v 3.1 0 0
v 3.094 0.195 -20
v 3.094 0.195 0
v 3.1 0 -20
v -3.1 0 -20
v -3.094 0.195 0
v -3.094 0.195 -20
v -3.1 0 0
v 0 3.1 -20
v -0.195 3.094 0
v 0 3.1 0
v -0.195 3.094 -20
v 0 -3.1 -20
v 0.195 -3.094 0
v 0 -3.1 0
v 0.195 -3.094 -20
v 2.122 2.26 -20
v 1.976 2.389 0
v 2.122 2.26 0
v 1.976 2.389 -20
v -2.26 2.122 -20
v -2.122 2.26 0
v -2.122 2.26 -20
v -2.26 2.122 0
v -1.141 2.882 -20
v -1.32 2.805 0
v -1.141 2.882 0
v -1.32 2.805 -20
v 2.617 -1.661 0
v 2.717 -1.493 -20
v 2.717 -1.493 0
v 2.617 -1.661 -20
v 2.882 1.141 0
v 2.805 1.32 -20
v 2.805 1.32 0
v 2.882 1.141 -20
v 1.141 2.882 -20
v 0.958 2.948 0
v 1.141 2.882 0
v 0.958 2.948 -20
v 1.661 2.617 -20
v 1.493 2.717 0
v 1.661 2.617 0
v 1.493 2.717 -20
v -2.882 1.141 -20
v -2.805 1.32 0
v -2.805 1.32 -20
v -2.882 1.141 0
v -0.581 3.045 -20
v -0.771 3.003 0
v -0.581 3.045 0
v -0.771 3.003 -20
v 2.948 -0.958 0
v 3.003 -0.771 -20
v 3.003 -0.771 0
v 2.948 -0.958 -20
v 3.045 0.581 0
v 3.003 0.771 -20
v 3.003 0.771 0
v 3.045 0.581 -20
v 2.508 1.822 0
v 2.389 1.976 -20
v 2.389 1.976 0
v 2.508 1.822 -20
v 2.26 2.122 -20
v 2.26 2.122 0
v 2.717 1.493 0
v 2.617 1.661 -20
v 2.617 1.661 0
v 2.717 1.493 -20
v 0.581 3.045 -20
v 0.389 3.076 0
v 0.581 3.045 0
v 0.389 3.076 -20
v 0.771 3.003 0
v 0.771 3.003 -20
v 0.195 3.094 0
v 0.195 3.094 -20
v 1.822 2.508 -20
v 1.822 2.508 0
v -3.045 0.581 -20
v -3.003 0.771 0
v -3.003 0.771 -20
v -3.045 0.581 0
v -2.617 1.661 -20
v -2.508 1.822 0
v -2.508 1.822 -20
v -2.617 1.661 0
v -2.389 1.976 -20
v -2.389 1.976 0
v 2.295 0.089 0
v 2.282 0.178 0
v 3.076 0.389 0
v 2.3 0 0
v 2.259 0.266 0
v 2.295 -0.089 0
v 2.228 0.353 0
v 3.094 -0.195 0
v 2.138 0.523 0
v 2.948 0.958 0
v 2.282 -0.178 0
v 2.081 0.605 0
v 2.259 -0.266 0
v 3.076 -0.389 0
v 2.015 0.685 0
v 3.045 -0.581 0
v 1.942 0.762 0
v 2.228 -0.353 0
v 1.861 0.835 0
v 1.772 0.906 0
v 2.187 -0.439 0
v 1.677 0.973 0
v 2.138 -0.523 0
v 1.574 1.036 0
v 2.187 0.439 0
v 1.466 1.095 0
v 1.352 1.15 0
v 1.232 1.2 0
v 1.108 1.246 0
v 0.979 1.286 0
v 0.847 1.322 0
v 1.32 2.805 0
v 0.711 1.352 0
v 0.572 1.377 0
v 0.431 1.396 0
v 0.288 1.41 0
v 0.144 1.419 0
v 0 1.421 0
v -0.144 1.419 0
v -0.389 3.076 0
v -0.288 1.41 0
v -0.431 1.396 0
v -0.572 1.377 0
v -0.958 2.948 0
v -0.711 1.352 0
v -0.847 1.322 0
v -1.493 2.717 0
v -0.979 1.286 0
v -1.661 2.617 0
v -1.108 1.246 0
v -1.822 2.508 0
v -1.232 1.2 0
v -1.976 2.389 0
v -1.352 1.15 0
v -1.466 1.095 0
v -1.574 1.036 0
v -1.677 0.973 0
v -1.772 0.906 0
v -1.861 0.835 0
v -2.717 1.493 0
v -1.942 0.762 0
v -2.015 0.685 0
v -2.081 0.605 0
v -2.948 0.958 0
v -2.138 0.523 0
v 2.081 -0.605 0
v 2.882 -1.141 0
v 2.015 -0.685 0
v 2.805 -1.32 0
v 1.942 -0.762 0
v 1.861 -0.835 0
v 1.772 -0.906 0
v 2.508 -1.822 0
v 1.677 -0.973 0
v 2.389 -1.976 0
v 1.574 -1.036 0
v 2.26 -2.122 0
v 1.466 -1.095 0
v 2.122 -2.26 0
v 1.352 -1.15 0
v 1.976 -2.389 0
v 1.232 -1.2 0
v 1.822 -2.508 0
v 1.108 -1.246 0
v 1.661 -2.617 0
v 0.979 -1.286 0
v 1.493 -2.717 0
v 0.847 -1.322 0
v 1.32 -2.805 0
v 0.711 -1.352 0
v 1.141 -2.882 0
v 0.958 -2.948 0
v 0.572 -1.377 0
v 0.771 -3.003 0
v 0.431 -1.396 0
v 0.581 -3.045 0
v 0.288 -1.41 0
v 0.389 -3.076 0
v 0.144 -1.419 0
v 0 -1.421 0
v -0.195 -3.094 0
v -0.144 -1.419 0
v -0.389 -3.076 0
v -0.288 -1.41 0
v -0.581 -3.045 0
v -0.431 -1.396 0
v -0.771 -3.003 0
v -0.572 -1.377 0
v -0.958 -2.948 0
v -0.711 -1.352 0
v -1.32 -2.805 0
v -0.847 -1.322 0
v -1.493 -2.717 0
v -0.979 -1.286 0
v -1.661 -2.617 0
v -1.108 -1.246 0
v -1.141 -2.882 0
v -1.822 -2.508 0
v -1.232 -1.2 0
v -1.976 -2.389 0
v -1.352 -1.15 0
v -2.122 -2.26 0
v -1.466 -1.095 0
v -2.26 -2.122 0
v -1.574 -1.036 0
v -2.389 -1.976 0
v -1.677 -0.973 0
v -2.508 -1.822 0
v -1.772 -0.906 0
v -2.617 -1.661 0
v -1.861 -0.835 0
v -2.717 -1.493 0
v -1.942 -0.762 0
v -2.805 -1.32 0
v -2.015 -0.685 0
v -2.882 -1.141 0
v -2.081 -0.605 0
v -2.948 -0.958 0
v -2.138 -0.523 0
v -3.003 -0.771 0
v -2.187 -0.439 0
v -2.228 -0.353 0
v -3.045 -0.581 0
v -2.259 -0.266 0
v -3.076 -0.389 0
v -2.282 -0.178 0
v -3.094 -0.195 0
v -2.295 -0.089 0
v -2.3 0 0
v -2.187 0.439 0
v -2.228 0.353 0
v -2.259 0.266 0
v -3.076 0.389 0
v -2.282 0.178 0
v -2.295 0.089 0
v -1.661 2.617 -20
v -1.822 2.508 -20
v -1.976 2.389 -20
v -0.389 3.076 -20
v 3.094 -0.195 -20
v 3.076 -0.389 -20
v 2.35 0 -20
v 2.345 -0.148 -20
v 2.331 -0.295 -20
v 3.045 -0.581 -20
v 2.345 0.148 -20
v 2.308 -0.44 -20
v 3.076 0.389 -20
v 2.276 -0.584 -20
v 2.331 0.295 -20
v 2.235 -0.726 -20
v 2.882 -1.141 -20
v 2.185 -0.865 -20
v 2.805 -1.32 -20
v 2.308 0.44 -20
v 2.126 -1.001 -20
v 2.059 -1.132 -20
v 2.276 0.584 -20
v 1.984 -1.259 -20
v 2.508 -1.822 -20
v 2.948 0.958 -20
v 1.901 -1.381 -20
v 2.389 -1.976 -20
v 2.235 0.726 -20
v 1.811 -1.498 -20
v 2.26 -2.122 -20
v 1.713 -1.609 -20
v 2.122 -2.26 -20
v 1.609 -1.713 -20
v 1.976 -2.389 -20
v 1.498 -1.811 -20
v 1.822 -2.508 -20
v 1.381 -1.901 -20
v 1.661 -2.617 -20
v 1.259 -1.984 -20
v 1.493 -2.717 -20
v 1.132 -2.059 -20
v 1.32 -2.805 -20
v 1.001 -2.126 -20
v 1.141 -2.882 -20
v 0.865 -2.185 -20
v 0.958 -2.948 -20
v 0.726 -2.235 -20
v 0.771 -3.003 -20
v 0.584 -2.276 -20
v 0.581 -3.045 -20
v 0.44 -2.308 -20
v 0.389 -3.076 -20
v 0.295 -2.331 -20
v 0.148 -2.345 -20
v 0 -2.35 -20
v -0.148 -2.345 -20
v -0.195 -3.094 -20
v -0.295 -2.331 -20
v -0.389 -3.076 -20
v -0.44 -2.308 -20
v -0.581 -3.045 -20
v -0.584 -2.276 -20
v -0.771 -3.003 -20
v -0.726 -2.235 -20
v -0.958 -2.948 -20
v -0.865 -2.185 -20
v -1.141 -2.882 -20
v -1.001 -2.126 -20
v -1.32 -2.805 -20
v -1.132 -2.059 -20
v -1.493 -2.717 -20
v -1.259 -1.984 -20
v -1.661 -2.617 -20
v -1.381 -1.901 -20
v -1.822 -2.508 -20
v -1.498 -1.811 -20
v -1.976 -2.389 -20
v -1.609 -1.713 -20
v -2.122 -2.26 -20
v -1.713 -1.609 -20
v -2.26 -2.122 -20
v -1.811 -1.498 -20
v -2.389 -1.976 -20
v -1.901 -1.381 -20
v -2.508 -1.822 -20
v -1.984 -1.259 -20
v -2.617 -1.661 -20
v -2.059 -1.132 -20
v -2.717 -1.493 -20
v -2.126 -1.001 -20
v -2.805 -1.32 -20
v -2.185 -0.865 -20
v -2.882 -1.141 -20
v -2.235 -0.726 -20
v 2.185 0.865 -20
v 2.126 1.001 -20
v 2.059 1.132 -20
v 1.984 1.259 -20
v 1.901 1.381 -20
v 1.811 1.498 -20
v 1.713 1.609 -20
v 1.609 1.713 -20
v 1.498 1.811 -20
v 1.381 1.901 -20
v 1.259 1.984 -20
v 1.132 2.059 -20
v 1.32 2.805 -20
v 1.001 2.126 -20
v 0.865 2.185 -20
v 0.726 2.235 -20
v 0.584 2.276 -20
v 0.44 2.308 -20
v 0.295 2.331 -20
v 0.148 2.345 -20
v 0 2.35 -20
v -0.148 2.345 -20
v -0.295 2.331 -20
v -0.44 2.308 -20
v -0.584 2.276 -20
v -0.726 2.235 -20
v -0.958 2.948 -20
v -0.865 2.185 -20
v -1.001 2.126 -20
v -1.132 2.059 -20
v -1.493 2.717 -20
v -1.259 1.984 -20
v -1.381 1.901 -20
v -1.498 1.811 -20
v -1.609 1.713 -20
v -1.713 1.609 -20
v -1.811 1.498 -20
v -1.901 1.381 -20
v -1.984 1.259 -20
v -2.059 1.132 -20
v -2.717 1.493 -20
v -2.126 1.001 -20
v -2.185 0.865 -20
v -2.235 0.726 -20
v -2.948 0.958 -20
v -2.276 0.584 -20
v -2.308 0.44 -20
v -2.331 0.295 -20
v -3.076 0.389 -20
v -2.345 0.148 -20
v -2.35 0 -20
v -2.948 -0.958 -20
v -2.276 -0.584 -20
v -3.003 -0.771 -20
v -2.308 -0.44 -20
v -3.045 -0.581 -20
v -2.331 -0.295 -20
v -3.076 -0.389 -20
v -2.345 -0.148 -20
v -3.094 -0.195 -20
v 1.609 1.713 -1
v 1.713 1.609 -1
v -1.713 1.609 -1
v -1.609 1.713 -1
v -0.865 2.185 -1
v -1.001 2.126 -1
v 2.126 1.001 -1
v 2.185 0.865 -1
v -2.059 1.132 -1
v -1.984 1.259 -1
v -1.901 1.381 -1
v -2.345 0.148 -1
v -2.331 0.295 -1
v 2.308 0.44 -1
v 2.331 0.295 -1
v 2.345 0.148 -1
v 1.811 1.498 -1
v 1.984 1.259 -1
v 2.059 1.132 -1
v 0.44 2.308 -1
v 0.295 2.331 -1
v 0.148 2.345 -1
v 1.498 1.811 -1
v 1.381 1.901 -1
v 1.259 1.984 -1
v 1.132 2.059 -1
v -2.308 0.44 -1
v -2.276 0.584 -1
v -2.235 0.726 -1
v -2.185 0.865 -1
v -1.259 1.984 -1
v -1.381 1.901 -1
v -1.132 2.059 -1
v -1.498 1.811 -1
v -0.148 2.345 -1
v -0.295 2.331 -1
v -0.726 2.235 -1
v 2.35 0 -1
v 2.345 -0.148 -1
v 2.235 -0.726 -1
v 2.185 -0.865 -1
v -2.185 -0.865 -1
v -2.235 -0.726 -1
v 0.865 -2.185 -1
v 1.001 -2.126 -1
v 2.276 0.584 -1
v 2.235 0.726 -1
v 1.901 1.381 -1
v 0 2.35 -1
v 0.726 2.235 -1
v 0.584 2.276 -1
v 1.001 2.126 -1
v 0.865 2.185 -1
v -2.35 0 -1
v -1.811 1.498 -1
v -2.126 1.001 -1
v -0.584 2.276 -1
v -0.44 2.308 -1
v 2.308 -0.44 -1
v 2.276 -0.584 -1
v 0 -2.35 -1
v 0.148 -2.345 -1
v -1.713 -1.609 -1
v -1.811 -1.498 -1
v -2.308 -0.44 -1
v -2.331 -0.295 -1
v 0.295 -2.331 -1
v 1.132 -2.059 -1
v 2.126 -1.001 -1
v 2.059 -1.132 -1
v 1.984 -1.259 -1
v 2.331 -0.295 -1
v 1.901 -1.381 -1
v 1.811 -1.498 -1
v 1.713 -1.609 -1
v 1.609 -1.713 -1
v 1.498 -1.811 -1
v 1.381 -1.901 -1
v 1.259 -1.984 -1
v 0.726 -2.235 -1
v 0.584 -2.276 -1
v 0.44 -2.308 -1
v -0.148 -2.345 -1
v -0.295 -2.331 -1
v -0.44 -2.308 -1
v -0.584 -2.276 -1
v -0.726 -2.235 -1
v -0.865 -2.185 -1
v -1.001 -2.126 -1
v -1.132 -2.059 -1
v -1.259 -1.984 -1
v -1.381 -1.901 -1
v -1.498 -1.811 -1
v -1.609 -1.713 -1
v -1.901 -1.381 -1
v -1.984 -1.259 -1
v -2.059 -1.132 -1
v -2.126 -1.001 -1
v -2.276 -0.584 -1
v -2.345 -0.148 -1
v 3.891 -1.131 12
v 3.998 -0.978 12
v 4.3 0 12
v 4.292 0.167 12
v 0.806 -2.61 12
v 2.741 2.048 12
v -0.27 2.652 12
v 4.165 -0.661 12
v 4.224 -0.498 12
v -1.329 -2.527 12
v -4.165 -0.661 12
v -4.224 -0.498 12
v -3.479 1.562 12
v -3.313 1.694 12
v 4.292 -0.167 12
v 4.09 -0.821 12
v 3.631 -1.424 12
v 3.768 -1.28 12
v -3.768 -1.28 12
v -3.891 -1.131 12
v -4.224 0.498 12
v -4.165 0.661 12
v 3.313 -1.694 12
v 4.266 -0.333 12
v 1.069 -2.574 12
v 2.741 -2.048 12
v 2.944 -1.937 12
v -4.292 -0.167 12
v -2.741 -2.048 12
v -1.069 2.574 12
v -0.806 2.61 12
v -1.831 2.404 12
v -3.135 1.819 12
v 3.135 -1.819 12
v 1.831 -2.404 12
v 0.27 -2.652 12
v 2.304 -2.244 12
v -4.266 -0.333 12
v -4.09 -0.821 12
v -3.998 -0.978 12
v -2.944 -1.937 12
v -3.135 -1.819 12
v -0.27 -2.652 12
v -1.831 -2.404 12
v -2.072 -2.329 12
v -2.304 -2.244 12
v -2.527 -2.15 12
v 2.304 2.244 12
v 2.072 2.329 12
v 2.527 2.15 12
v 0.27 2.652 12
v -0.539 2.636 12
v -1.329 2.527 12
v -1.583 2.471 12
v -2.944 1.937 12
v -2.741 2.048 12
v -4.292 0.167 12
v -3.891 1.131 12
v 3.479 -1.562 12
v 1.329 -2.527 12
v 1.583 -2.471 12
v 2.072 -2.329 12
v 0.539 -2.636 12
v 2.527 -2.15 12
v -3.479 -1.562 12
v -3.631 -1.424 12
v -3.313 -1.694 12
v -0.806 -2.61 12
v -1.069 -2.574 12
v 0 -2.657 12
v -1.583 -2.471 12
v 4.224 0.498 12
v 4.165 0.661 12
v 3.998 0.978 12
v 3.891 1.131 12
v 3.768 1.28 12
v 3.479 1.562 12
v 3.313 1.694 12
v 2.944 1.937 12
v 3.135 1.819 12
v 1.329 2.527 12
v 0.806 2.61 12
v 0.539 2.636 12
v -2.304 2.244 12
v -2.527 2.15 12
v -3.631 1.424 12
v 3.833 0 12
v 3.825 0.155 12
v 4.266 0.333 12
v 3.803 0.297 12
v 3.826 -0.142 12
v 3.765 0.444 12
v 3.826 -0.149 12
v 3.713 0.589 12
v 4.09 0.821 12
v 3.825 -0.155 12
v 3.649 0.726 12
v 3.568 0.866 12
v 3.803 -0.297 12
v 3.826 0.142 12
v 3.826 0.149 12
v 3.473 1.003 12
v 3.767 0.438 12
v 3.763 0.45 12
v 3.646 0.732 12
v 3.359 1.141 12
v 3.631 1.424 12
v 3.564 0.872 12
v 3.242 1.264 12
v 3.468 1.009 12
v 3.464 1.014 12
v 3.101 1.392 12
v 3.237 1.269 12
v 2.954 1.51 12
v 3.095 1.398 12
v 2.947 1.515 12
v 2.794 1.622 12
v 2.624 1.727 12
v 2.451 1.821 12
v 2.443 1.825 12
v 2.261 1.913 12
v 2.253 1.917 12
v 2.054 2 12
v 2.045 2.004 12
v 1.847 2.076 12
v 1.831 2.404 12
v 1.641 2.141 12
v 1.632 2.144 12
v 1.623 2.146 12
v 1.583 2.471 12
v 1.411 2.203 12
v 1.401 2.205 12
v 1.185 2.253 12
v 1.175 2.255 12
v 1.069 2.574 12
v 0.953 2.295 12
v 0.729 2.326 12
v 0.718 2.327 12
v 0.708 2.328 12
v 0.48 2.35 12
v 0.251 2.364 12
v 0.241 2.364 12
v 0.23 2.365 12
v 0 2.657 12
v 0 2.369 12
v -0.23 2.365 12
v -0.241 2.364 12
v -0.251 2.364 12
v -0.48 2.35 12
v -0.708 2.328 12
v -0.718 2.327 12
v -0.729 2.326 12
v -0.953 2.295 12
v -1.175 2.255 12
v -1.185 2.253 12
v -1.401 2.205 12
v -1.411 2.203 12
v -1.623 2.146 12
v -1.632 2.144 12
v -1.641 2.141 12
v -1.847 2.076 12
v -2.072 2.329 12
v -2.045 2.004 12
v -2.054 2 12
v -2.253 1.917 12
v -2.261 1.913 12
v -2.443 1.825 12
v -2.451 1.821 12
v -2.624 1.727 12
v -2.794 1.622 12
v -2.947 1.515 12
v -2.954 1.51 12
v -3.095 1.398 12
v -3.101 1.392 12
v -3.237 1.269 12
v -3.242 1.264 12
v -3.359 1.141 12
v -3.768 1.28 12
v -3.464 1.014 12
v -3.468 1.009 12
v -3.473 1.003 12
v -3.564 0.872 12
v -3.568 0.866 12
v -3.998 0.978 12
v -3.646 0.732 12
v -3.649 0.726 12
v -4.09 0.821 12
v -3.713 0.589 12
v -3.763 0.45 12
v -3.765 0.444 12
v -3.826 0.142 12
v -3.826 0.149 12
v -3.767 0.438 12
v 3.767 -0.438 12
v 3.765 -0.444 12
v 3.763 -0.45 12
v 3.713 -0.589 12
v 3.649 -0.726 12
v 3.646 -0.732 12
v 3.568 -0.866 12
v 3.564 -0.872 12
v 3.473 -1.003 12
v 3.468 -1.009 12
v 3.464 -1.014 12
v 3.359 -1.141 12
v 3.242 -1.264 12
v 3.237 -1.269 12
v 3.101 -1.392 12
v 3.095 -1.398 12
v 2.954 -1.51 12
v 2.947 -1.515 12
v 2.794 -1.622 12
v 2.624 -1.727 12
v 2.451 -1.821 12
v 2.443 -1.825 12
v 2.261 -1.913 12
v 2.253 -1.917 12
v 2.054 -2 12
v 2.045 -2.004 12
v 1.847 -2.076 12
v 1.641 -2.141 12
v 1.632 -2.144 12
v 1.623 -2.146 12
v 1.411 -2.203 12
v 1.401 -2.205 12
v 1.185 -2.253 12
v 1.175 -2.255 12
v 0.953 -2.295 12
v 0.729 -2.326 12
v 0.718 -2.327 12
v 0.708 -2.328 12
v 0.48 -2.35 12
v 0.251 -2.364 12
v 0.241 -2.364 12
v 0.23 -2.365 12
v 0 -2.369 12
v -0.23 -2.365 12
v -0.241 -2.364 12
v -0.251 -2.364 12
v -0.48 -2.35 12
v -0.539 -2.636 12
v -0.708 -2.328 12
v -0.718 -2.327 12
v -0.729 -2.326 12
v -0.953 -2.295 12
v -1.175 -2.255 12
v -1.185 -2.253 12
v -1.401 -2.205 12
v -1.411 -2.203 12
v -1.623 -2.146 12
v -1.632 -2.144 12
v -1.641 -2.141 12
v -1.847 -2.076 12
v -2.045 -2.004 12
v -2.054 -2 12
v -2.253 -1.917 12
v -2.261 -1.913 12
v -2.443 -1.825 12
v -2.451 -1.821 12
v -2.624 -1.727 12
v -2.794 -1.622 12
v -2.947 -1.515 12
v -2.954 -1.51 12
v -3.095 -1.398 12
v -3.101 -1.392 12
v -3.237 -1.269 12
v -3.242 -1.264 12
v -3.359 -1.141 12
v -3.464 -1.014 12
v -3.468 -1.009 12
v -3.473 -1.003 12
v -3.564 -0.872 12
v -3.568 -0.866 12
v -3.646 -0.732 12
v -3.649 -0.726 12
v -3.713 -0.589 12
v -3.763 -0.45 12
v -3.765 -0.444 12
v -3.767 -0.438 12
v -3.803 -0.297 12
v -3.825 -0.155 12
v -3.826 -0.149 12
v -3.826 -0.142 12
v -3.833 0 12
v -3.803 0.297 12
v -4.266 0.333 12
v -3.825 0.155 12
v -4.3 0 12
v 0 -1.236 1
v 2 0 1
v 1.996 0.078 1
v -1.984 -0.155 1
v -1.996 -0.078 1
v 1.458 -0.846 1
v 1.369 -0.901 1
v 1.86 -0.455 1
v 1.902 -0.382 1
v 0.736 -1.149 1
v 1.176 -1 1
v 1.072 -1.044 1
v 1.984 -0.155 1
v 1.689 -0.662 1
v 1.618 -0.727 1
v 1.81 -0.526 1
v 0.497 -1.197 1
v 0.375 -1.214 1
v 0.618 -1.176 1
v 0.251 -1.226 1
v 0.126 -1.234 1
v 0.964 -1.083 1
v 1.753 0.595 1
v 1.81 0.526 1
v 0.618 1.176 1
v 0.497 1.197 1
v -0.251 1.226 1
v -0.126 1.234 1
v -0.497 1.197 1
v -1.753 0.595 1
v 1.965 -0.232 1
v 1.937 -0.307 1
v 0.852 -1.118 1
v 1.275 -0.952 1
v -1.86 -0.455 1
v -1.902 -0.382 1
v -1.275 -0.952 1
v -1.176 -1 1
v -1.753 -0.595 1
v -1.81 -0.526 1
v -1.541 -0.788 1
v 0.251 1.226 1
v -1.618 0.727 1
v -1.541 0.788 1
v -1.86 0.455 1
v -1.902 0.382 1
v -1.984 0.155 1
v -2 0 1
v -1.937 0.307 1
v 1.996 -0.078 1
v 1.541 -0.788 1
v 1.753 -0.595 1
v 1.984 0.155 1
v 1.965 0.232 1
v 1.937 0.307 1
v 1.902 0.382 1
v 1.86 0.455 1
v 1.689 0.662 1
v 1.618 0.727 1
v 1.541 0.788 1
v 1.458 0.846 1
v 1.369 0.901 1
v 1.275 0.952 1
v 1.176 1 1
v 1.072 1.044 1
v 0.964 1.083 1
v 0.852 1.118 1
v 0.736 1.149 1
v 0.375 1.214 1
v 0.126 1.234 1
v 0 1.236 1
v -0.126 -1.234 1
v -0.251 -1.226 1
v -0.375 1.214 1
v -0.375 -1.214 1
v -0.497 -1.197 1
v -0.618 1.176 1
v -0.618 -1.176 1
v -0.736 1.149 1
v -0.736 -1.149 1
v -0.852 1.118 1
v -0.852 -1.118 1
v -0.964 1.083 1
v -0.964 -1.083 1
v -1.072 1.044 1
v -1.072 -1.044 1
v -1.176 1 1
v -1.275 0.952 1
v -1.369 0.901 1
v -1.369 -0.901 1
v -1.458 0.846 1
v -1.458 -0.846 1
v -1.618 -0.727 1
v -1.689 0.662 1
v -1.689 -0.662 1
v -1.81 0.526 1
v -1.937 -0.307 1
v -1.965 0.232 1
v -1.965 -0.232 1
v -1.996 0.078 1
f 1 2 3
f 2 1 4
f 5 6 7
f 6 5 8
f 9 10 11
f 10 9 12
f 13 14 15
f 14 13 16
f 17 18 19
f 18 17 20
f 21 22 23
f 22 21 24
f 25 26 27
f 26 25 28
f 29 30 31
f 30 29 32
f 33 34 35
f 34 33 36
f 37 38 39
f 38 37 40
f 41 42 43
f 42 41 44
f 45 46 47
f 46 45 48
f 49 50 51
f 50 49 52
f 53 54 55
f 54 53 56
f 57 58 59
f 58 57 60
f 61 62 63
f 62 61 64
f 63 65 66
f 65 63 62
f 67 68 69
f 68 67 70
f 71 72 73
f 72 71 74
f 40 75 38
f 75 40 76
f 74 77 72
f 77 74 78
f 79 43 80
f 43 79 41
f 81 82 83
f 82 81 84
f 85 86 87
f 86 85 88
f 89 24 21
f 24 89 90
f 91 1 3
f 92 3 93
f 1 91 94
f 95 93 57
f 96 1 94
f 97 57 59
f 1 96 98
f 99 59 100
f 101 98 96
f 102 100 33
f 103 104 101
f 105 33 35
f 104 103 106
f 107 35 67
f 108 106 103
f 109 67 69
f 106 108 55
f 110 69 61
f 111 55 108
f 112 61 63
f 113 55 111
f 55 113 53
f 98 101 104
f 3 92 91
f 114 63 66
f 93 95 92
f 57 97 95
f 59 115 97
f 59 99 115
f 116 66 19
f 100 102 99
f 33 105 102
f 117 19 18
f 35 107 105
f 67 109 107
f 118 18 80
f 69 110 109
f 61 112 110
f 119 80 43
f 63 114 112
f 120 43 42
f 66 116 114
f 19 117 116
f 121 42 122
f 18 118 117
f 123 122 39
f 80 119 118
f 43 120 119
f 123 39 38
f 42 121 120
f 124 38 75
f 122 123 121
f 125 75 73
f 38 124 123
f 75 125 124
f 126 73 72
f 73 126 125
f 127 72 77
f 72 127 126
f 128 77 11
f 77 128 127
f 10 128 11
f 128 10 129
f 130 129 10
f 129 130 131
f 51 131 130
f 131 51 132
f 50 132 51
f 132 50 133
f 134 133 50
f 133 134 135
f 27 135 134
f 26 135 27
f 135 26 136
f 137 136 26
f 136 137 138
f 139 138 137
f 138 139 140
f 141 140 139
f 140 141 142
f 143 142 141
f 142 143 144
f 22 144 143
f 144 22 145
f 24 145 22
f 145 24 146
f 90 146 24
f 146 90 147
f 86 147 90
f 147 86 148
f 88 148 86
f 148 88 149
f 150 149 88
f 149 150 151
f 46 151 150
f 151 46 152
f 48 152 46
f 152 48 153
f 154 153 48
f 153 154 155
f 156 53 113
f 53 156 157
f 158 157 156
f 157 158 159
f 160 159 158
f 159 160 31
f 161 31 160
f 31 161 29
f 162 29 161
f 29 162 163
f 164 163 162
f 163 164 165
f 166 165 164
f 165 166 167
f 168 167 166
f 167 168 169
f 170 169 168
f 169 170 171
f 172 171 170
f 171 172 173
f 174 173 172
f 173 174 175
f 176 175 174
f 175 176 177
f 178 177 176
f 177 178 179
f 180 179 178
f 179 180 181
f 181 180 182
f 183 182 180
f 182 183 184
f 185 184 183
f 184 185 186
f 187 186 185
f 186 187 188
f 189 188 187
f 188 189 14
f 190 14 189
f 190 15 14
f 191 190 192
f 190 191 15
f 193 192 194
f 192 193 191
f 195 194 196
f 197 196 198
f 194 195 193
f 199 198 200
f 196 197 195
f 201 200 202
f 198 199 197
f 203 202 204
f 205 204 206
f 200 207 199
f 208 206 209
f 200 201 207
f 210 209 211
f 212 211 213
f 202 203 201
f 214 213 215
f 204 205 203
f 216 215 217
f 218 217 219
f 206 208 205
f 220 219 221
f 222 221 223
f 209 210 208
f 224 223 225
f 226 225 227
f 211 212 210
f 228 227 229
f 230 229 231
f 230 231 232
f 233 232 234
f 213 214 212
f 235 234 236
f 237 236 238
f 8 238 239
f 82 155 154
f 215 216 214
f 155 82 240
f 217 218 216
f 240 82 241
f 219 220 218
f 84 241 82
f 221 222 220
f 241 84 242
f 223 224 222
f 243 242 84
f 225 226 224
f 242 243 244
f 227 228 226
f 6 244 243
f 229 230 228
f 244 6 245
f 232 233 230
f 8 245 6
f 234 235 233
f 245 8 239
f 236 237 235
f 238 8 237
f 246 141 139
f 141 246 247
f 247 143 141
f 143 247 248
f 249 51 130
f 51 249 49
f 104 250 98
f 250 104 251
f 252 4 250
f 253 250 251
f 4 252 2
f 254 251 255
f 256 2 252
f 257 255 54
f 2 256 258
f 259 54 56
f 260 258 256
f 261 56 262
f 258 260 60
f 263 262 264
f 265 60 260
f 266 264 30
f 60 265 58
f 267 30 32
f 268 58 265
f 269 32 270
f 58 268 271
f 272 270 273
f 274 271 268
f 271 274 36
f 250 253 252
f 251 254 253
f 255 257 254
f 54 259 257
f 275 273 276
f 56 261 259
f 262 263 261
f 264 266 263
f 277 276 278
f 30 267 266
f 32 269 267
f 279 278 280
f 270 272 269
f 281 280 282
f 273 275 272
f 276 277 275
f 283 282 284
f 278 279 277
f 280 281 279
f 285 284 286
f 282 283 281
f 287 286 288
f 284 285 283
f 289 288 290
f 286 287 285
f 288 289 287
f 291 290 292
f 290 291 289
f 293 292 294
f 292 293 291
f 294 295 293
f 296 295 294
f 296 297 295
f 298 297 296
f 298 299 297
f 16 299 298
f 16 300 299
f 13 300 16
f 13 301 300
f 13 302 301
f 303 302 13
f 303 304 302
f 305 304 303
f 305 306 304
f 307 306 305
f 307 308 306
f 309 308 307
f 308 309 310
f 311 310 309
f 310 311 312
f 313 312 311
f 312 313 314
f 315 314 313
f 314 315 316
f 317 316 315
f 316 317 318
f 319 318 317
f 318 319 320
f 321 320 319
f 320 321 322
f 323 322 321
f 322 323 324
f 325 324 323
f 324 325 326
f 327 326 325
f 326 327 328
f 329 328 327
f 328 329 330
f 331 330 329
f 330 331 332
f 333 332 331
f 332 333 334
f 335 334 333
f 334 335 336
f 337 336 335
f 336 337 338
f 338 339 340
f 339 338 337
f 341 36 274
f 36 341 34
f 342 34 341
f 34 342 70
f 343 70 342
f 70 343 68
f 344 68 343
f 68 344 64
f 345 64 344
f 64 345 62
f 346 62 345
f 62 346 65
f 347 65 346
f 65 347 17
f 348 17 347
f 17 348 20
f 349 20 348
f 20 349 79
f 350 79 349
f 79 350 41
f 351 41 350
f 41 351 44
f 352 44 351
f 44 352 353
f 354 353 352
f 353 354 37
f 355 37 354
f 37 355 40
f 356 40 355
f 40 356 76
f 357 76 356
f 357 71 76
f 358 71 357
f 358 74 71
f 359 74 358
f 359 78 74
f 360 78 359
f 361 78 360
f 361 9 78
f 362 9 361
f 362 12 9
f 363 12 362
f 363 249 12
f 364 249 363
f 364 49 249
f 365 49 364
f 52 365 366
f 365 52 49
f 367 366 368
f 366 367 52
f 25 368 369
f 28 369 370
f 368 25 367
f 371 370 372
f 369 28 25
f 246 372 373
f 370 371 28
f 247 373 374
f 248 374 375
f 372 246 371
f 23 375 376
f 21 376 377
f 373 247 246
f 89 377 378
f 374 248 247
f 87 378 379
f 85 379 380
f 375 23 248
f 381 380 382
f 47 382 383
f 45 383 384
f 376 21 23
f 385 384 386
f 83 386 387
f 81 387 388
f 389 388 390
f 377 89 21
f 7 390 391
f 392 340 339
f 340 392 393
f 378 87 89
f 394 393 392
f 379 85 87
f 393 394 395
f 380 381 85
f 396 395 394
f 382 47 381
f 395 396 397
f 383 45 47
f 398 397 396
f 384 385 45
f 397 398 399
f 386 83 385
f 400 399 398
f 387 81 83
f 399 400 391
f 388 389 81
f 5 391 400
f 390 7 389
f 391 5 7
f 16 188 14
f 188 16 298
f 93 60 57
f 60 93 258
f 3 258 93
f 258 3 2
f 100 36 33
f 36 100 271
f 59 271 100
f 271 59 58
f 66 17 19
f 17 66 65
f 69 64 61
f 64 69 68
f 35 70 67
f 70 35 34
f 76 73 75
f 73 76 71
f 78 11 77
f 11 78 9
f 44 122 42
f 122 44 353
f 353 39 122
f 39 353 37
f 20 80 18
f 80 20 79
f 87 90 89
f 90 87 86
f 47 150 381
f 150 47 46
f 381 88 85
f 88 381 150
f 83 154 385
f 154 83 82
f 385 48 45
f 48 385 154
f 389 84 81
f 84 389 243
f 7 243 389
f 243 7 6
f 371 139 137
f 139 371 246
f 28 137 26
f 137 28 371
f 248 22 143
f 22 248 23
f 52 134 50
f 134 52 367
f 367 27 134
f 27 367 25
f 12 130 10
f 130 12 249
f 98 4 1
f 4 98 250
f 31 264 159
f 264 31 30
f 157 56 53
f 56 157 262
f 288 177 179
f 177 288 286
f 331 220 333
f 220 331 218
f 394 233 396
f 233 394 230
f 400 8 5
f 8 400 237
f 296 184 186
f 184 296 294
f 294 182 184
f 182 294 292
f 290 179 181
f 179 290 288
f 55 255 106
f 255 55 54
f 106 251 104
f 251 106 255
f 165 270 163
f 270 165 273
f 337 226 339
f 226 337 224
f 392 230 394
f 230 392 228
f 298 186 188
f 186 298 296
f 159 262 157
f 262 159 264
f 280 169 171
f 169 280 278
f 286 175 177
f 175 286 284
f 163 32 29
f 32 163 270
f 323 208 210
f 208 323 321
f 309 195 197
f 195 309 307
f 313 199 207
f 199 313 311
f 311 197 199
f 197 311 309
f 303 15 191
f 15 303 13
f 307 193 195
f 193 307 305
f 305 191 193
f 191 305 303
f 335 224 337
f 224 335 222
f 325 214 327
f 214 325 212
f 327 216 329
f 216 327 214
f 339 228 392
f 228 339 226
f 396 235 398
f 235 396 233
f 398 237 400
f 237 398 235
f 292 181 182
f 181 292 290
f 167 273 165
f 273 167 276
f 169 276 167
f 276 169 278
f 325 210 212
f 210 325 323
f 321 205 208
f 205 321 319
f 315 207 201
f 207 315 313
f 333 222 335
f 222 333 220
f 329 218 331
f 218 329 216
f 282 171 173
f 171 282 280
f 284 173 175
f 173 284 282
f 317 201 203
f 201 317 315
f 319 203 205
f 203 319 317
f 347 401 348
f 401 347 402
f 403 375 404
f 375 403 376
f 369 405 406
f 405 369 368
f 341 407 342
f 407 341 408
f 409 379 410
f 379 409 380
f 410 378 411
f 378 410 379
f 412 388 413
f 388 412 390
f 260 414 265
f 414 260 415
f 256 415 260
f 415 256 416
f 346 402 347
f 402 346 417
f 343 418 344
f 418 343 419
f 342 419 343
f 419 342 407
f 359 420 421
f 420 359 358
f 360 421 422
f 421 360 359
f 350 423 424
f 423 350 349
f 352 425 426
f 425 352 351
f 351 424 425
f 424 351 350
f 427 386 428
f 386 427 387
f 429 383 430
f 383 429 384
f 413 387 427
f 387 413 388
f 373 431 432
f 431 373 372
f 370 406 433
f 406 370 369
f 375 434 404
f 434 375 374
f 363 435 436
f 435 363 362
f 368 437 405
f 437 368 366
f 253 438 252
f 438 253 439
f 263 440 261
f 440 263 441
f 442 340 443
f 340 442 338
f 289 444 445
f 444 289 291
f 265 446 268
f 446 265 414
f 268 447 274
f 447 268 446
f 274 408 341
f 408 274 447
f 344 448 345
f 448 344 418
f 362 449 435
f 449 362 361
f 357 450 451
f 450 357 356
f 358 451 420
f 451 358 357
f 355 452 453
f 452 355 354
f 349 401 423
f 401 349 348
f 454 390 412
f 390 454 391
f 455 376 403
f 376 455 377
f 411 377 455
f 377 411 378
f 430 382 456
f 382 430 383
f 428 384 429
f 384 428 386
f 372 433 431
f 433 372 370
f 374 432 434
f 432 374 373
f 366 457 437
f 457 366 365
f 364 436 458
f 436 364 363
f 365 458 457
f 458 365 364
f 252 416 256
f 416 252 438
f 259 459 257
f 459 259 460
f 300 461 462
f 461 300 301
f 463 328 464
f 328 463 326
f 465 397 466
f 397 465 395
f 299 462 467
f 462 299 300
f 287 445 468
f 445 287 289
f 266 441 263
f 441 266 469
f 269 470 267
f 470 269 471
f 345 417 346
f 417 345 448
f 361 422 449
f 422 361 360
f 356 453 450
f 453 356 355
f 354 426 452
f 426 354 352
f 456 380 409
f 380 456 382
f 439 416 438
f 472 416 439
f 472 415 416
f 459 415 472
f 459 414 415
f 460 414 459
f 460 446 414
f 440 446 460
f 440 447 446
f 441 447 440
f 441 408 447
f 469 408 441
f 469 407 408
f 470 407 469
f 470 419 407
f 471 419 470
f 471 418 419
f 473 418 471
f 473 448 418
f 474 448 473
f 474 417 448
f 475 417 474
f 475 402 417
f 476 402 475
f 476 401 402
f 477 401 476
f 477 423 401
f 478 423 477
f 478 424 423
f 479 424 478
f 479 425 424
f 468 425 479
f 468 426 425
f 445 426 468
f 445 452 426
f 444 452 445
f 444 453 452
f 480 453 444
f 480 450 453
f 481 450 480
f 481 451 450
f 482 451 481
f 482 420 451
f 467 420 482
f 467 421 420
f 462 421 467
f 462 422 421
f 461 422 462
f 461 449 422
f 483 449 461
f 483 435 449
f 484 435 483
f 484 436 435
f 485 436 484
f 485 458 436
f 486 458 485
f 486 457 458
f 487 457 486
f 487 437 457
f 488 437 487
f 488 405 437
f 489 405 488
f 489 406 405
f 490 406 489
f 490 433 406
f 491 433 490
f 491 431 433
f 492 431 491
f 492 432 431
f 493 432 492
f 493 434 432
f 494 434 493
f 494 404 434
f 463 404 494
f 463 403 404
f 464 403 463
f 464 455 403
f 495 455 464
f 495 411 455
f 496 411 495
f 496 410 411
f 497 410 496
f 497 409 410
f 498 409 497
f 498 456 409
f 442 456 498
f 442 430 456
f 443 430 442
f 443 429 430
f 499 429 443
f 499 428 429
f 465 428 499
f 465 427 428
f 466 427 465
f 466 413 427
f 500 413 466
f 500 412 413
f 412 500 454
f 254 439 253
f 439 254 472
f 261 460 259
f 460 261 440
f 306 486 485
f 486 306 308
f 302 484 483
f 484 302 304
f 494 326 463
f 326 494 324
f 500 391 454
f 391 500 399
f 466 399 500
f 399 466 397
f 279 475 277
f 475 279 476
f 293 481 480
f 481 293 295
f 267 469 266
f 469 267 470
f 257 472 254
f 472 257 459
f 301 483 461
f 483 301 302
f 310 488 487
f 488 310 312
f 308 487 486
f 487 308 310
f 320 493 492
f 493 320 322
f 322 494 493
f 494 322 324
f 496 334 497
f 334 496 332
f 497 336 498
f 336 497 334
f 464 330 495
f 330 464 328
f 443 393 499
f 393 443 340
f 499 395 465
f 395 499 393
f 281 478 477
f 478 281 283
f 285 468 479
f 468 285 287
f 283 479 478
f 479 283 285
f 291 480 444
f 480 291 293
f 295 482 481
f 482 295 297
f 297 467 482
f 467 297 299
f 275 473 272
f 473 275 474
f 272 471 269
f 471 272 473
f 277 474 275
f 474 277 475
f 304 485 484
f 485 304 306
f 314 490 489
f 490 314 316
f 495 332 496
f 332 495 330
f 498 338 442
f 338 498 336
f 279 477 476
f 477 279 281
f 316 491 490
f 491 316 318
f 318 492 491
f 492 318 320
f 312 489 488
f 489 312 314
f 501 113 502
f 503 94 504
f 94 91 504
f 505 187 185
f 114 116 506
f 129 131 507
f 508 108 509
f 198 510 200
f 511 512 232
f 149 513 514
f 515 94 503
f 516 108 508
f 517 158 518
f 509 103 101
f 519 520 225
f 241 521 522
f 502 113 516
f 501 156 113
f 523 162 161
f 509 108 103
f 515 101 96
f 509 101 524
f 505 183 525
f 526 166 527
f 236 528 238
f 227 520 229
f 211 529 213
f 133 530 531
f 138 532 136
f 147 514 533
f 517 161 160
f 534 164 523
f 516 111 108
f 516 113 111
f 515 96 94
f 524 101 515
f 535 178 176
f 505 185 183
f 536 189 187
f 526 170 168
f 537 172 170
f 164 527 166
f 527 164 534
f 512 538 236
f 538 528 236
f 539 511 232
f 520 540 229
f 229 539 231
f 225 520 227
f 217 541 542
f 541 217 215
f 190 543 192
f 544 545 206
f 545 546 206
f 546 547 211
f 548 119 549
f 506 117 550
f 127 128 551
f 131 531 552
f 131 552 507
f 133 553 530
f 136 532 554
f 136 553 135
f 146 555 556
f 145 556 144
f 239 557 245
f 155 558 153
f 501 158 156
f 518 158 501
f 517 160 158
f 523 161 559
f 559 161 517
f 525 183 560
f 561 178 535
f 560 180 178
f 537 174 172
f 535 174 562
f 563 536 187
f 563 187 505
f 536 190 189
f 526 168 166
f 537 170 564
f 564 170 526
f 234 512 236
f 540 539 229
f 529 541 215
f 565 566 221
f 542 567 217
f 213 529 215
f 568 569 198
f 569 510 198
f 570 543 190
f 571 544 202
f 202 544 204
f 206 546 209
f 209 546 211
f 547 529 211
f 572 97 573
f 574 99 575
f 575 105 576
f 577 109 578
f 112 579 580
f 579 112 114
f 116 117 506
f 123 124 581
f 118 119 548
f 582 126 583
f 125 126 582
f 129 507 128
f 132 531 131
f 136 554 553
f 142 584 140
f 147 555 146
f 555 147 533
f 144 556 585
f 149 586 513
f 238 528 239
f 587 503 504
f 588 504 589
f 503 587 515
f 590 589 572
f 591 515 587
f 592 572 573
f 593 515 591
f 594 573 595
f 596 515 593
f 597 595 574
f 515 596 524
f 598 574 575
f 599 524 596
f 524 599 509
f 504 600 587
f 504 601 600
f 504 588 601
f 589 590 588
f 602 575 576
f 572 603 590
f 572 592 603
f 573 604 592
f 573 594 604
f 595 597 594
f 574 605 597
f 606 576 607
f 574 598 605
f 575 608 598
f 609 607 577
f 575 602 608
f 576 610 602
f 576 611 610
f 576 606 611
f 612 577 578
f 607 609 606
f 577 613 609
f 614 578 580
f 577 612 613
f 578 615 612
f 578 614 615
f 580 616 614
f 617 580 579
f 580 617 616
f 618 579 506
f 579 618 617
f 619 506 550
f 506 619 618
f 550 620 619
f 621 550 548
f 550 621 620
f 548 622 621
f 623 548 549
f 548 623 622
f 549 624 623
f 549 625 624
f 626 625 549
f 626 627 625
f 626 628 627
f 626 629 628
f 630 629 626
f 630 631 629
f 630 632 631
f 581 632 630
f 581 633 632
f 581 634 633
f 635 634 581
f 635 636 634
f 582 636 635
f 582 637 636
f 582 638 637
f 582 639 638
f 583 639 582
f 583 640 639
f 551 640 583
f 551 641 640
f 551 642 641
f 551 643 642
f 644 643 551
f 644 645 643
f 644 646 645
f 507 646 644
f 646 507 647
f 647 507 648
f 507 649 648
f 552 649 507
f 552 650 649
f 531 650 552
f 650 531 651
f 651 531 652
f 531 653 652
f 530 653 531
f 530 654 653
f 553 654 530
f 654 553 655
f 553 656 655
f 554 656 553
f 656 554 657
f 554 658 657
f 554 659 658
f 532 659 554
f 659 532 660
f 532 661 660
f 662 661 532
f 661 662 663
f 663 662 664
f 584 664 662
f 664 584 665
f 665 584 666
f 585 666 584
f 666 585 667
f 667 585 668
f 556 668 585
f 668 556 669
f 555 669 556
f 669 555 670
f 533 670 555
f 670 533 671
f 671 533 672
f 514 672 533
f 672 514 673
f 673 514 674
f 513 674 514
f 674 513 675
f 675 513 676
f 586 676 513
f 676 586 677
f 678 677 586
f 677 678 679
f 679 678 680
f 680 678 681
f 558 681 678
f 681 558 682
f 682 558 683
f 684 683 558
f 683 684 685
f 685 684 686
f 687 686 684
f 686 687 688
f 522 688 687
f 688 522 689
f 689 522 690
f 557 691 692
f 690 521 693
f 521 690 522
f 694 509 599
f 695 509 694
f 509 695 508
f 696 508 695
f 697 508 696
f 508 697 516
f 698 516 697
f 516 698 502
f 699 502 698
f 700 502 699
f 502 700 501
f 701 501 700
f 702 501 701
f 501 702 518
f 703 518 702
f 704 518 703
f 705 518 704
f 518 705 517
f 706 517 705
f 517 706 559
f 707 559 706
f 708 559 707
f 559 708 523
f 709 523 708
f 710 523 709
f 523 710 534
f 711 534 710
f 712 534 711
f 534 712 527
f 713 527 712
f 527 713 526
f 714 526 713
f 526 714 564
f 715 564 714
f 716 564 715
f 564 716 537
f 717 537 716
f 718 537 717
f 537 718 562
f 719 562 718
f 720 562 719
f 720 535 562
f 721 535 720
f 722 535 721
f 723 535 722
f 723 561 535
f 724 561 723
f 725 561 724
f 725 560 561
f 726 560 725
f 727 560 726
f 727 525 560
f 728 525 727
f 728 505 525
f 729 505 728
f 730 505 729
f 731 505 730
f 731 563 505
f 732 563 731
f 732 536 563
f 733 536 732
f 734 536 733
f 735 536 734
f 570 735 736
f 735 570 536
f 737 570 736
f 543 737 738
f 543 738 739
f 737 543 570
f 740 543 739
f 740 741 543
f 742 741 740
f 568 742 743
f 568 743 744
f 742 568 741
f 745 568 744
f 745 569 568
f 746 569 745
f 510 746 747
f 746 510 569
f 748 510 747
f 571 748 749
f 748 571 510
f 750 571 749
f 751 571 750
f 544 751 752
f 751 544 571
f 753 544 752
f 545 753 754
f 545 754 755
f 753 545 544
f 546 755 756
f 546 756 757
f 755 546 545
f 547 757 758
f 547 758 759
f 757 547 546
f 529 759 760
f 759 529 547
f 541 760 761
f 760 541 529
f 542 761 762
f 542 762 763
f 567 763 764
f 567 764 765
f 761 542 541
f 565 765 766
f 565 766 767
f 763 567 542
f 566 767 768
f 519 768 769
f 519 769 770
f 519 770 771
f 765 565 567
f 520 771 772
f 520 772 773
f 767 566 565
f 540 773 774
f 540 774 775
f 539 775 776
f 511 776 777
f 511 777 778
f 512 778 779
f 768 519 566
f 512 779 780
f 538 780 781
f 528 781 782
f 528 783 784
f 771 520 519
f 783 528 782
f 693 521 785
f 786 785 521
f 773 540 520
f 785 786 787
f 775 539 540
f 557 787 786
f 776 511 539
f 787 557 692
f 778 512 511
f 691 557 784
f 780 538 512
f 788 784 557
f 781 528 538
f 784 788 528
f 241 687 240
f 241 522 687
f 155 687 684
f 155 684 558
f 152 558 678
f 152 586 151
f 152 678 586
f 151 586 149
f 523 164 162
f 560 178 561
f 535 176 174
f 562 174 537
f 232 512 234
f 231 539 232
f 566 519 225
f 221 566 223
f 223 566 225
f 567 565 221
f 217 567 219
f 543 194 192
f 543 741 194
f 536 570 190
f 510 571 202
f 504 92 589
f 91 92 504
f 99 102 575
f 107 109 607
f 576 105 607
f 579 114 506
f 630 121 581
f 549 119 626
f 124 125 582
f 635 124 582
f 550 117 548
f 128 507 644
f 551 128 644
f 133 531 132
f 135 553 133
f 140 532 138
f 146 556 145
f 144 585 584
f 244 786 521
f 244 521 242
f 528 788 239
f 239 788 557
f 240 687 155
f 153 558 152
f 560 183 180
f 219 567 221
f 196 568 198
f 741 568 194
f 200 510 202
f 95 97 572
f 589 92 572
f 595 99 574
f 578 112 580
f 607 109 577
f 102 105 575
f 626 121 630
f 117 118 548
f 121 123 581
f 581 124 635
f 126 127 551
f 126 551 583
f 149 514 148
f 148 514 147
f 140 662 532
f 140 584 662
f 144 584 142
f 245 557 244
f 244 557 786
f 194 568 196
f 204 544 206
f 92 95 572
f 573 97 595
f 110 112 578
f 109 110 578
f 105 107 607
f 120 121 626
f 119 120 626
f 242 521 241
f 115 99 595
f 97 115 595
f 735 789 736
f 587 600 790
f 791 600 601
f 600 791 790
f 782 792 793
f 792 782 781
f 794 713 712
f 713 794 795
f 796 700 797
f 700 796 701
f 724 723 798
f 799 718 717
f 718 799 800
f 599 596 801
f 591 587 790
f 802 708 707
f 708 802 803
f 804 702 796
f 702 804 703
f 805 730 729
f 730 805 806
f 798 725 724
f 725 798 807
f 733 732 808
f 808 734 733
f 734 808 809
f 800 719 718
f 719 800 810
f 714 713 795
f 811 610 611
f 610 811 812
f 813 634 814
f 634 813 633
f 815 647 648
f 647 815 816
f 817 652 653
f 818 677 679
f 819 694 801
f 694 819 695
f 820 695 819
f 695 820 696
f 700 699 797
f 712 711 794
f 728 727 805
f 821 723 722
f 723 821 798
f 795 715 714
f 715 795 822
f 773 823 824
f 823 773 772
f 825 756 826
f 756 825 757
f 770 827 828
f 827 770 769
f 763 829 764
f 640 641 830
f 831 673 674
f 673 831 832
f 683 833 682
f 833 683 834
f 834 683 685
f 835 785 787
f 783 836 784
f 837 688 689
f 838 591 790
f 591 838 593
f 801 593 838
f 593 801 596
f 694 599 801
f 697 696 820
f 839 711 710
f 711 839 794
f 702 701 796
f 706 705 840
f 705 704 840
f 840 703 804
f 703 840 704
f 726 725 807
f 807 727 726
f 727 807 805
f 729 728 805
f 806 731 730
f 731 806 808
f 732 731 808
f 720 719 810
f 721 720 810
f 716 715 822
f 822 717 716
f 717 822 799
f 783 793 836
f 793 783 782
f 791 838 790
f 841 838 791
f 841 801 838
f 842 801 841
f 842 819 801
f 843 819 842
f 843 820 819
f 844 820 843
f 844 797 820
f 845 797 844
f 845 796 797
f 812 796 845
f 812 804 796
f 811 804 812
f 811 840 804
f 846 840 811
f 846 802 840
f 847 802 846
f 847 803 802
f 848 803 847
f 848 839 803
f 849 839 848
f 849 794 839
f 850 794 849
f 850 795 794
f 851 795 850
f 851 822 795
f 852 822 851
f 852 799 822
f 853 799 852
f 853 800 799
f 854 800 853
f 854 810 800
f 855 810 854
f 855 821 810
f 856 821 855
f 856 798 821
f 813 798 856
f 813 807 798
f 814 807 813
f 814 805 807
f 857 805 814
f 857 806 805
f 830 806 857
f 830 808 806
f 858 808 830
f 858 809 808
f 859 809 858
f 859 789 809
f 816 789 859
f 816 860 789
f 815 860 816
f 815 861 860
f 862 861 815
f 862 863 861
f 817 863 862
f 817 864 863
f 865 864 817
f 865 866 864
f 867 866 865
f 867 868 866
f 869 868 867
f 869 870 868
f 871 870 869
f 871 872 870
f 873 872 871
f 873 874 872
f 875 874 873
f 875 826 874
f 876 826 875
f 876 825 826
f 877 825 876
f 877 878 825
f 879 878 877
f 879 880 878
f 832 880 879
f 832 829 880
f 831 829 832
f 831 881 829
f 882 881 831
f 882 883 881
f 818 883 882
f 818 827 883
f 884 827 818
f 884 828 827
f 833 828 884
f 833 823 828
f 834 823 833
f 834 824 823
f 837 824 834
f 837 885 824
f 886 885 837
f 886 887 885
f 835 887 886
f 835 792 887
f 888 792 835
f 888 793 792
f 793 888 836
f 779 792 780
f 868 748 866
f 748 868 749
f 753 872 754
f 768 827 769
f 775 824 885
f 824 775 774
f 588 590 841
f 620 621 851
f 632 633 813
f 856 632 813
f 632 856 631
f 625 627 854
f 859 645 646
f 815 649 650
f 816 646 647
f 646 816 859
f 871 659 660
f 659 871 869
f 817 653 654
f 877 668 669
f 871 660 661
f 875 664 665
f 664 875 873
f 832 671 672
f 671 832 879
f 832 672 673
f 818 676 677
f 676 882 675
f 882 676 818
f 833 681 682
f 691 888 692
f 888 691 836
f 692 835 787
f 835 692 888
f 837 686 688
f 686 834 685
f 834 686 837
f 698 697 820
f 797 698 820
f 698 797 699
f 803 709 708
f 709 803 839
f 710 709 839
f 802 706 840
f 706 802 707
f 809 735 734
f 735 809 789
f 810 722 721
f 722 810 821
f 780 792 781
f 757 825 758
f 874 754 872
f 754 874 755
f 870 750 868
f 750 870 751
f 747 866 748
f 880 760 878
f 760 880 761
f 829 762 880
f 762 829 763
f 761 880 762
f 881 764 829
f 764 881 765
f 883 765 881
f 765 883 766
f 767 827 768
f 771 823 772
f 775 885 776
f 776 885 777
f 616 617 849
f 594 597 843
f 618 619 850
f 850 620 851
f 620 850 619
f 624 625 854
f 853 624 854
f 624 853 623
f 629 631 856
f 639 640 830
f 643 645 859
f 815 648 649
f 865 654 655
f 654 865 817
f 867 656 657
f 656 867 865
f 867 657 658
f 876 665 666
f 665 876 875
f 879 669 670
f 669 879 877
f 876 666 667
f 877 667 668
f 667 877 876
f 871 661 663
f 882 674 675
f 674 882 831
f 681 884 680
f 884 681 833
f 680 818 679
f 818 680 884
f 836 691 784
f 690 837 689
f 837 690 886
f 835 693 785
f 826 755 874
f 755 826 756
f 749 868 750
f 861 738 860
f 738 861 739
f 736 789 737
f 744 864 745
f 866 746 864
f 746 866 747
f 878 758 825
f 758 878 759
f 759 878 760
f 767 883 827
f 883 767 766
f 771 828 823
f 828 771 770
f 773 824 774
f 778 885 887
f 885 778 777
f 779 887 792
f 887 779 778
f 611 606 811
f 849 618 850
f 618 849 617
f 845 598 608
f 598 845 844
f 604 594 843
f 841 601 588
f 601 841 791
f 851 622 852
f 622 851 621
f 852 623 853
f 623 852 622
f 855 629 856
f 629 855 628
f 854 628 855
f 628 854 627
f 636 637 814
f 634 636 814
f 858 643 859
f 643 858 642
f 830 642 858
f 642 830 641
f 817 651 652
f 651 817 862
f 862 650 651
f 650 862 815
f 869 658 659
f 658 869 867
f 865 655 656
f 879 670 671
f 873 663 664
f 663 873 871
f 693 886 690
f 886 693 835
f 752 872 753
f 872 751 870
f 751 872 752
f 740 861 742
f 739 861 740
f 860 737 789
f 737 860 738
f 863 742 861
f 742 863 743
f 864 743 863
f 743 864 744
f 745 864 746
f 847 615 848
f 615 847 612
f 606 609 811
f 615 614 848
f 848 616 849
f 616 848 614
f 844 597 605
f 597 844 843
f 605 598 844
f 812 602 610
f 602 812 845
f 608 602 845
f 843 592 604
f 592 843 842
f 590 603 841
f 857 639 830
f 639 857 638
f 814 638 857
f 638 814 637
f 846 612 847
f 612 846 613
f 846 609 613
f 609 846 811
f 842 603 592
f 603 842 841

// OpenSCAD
// file: bottom_pin.scad
$fn=100;

module pin(diameter=6.2, height=10, cap_depth=1)
{
    translate([0,0,-height]) difference(){
        cylinder(d=diameter,h=height);
        cylinder(d=diameter-1.5,h=height-cap_depth);
    }
}

pin();
// main file
// Sample holder for Mathias' zebrafish head
$fn = 100;

use <bottom_pin.scad>

// Bottom pin
pin(height=20);

// Cup
height=12;
upper_radius=4;
lower_radius=2;
wall_thickness=0.3;
scale([1,.618,1]) {
    difference() {
    cylinder(h=height, r1=lower_radius+wall_thickness, r2=upper_radius+wall_thickness);
    translate([0,0,1]) cylinder(h=height, r1=lower_radius, r2=upper_radius);
    }
}
